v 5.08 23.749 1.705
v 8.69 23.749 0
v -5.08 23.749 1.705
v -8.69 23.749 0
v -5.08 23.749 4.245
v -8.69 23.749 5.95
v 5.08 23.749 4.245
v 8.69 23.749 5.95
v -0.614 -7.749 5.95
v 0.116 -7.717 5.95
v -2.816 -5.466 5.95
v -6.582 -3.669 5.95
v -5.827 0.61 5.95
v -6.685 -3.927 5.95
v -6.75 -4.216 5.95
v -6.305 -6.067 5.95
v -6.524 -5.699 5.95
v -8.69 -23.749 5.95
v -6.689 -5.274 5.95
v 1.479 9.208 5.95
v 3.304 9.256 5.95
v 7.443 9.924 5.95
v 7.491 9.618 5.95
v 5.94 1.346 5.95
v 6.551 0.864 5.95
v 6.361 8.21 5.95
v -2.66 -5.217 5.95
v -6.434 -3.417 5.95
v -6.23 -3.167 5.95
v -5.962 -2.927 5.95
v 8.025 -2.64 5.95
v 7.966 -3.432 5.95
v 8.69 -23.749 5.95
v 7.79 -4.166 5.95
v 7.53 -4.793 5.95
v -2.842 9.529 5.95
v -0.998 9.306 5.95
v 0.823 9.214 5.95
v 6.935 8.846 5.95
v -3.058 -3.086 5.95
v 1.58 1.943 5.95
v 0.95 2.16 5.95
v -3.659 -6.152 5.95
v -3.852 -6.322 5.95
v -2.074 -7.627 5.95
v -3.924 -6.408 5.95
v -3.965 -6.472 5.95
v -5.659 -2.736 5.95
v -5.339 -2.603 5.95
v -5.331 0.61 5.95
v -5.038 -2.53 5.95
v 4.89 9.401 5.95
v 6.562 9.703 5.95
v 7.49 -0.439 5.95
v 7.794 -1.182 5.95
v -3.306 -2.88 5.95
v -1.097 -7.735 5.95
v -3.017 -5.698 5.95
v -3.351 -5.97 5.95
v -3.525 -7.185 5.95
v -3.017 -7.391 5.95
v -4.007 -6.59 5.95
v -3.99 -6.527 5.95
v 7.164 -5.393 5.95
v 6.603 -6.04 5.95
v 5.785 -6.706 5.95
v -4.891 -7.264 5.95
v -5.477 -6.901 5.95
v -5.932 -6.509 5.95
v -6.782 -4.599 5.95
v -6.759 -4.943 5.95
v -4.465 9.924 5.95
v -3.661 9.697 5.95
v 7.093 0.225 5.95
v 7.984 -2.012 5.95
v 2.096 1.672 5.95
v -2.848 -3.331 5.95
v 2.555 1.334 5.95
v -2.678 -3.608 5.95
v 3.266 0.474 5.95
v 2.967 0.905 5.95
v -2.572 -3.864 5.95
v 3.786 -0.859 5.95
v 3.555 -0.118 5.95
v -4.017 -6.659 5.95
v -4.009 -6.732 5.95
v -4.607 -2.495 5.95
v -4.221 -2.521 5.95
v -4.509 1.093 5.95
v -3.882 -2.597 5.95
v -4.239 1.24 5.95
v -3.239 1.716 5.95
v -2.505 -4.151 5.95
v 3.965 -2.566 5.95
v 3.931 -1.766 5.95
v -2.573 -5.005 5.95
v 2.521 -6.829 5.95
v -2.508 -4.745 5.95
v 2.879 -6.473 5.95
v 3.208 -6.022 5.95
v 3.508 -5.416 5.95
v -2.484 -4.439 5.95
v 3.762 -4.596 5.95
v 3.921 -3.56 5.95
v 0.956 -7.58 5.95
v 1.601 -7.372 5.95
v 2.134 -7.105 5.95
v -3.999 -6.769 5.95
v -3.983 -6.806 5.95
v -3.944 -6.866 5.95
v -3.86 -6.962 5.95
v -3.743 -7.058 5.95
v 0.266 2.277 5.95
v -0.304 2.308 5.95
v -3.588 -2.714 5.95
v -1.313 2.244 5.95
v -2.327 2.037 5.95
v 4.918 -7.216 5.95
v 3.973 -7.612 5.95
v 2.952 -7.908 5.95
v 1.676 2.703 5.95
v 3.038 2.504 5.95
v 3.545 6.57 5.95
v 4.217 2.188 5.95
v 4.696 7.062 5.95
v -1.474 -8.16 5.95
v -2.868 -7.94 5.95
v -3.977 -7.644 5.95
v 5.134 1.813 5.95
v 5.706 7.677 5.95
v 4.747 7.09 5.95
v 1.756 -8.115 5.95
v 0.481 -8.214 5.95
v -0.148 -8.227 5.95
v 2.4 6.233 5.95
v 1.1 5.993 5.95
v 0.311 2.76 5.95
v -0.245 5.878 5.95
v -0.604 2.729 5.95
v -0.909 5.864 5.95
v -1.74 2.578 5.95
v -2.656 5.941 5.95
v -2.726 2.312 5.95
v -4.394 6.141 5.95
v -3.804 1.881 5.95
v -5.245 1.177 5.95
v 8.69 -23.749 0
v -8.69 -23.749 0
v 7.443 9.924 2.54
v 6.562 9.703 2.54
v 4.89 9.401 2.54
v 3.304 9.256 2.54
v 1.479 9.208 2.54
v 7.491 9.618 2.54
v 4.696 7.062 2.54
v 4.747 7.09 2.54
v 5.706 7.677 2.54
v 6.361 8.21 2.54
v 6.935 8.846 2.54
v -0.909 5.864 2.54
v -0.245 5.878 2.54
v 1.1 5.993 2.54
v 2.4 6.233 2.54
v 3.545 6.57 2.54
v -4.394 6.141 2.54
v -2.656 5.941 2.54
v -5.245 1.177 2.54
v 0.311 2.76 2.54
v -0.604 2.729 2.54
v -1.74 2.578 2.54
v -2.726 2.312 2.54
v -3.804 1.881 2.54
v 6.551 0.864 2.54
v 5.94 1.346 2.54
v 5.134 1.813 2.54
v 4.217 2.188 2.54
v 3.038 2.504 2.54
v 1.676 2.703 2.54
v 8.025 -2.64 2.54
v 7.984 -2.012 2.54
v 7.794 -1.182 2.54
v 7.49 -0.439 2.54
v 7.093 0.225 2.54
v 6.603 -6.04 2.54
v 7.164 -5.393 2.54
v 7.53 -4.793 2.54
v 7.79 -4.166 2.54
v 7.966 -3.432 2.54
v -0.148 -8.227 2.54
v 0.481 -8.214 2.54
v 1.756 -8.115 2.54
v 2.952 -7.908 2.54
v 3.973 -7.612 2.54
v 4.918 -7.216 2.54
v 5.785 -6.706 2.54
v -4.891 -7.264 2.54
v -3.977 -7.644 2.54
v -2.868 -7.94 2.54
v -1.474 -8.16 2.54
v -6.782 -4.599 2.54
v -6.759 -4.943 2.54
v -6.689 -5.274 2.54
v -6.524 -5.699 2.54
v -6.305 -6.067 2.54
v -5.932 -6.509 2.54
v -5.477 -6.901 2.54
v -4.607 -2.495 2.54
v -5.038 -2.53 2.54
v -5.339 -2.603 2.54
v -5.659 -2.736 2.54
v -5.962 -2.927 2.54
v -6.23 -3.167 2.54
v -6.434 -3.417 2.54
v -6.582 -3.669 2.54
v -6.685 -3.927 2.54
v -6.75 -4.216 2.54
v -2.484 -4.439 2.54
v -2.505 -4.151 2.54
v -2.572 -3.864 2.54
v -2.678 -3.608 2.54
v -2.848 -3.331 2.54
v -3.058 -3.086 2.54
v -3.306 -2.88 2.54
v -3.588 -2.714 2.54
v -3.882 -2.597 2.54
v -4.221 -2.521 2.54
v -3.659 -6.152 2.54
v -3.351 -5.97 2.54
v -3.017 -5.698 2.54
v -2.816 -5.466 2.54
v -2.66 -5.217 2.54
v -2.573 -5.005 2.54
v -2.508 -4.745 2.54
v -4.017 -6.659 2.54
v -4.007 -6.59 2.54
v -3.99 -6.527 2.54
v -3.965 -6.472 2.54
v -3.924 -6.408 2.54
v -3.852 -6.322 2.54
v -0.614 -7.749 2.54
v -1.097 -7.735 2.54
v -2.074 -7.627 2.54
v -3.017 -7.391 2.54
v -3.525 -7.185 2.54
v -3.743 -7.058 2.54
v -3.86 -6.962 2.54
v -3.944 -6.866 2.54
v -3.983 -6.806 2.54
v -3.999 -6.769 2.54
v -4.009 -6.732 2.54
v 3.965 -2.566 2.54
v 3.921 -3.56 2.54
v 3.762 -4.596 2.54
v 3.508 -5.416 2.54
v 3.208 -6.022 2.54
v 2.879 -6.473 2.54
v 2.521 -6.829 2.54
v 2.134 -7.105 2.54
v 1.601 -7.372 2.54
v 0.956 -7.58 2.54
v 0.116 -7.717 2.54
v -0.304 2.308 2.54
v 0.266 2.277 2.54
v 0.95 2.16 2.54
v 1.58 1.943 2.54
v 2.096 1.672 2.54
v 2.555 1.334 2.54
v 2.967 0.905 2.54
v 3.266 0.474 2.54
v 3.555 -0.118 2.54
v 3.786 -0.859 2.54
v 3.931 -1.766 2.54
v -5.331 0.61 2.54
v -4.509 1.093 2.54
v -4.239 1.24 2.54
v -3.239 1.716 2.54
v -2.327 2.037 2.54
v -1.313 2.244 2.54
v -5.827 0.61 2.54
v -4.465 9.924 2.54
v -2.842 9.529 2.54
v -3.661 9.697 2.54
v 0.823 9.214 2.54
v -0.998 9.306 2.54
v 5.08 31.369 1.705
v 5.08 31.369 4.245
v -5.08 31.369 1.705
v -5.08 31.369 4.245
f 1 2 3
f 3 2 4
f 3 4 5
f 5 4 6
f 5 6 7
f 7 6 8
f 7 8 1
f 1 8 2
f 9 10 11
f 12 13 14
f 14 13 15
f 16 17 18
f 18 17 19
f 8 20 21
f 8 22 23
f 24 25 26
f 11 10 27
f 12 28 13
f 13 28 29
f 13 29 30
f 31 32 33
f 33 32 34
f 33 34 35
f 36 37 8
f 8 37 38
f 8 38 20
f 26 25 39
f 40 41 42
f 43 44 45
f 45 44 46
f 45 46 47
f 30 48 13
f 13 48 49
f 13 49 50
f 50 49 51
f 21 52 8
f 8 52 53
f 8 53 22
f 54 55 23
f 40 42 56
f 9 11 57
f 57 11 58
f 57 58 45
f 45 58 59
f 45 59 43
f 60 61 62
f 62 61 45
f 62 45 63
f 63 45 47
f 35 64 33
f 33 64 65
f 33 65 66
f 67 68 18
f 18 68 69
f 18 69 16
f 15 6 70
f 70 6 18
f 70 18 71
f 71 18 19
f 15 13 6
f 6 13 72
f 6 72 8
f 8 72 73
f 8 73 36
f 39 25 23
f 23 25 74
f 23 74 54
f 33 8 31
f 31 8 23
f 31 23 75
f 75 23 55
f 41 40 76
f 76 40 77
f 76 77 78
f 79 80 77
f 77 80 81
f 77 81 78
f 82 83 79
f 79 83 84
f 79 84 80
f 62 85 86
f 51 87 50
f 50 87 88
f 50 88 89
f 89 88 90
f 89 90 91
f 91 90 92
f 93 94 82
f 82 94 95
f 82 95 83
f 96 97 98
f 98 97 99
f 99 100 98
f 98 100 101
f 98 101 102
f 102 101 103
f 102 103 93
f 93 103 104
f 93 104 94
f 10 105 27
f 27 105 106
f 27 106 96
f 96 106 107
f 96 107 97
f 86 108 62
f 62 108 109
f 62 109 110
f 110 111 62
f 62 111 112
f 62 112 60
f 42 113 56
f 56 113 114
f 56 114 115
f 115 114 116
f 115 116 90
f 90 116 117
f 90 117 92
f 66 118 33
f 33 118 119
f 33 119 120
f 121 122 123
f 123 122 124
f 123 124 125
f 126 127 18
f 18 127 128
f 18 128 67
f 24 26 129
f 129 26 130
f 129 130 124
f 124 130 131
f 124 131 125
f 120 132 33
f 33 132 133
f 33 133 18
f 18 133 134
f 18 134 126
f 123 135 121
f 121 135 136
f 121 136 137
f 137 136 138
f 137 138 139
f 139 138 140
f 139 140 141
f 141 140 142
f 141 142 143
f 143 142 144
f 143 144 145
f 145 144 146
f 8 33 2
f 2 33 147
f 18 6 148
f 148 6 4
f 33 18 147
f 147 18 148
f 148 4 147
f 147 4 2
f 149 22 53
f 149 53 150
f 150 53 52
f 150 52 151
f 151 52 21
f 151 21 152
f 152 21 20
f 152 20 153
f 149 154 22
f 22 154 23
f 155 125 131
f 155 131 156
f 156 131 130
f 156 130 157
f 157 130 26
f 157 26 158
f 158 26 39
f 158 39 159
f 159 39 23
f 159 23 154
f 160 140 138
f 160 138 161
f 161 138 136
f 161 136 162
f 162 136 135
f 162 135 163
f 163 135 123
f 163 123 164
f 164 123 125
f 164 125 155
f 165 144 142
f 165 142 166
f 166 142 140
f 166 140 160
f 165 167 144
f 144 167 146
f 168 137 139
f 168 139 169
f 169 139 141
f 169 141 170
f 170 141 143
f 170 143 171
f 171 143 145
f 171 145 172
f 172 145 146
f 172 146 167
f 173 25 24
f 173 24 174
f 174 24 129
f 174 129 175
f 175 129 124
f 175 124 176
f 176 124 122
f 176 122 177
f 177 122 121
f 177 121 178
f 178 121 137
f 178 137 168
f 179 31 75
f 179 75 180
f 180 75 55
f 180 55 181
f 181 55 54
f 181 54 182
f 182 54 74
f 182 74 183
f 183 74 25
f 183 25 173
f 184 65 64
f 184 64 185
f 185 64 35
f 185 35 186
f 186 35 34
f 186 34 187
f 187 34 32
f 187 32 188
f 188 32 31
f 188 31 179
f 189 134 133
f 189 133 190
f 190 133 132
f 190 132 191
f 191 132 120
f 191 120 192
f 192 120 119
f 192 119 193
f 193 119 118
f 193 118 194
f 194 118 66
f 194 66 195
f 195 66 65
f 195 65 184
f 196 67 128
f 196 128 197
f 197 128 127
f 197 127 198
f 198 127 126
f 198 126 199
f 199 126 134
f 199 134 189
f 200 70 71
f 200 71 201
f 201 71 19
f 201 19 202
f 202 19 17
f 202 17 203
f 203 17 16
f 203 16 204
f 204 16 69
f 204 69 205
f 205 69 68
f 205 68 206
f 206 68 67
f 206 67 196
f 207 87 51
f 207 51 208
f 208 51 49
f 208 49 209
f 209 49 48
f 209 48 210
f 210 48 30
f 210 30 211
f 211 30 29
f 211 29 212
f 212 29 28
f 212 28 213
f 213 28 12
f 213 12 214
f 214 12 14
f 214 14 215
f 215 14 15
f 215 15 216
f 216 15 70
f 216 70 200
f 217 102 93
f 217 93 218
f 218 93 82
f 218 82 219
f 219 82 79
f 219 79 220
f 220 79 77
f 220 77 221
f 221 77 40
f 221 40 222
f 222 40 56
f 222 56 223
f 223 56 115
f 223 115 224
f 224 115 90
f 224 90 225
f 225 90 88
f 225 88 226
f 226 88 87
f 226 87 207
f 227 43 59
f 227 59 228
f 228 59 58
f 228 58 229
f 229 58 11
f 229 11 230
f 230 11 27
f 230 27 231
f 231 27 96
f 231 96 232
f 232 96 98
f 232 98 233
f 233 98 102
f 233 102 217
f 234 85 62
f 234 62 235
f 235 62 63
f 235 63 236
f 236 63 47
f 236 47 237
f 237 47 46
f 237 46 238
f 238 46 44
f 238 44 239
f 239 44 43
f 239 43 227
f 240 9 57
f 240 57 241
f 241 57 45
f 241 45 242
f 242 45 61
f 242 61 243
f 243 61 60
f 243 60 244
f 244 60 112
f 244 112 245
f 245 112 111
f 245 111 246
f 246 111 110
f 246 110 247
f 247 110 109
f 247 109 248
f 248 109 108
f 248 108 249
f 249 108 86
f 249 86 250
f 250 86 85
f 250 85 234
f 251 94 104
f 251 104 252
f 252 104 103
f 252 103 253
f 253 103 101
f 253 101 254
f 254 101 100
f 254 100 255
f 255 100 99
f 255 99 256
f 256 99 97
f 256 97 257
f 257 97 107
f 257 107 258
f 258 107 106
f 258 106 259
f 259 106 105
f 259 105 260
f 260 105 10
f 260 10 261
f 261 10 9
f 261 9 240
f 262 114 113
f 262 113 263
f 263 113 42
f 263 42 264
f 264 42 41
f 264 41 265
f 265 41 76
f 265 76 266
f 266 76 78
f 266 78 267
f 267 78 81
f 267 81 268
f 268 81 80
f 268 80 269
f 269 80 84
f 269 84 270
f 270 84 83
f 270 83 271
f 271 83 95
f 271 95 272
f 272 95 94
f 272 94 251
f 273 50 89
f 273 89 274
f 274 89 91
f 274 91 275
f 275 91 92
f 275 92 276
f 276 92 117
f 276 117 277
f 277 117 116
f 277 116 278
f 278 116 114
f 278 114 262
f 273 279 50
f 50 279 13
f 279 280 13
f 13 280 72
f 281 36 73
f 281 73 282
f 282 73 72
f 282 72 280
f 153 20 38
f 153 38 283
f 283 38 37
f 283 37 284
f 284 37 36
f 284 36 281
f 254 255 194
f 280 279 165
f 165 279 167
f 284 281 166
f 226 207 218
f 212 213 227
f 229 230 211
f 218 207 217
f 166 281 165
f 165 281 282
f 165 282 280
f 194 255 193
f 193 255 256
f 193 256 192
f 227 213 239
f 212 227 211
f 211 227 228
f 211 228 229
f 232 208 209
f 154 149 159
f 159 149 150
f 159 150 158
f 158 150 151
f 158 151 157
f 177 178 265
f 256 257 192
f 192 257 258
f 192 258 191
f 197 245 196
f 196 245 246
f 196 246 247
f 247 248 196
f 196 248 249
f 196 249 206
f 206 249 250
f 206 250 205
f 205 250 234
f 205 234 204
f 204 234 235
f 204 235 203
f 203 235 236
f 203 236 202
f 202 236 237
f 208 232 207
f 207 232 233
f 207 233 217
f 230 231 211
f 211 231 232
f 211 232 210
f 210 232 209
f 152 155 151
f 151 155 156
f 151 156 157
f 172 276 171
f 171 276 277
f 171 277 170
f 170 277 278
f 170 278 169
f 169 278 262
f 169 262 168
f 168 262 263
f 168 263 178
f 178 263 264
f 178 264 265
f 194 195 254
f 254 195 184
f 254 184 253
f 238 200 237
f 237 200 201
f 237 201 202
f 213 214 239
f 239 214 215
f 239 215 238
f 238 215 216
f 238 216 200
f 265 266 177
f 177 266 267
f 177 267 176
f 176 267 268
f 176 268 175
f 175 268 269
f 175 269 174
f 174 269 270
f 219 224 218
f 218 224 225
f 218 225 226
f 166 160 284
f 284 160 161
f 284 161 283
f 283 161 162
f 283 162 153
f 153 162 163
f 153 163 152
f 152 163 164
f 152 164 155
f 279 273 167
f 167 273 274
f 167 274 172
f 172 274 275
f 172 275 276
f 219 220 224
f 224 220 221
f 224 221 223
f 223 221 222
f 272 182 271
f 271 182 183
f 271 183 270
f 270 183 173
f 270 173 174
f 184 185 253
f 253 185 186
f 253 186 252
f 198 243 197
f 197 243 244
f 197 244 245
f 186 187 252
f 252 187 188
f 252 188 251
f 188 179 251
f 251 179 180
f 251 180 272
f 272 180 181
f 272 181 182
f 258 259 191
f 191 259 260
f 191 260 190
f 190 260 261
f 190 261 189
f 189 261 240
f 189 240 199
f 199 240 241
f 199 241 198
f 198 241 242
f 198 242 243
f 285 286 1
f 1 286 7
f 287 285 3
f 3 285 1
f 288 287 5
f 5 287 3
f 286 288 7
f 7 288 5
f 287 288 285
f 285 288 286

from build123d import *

# Parameters (mm, degrees)
SKETCH1_W           = 17.38
SKETCH1_H           = 47.498
BOSS_EXTRUDE1_DEPTH = 5.95
CUT_EXTRUDE1_DEPTH  = 3.41
SKETCH3_W           = 10.16
SKETCH3_H           = 2.54
BOSS_EXTRUDE2_DEPTH = 7.62


with BuildPart() as part:
    # Sketch1 → Boss-Extrude1 (new body)
    with BuildSketch(Plane.XY):
        Rectangle(SKETCH1_W, SKETCH1_H)
    extrude(amount=BOSS_EXTRUDE1_DEPTH)

    # Sketch2 → Cut-Extrude1 (cut)
    with BuildSketch(Plane.XY.offset(5.95)):
        with BuildLine():
            Line((7.442756003, 9.924455156), (7.491268126, 9.618455606))
            add(Edge.make_bspline(
                [(7.491268126, 9.618455606), (7.388196446, 9.466942554), (7.190794115, 9.176765567), (6.883635039, 8.77416687), (6.580334345, 8.424256906), (6.271574884, 8.117843462), (5.940370317, 7.841299159), (5.568441188, 7.578876003), (5.153754118, 7.310436522), (4.852926765, 7.147246701), (4.696223459, 7.062239856)],
                knots=[0, 0, 0, 0, 1.145964768, 2.194745584, 3.165202406, 4.03990847, 4.912501504, 5.860303535, 6.885415487, 8, 8, 8, 8], degree=3))
            add(Edge.make_bspline(
                [(4.696223459, 7.062239856), (4.499744398, 6.967232704), (4.102902364, 6.775340341), (3.474153814, 6.538191996), (2.813554004, 6.333237061), (2.120776353, 6.162580703), (1.399657714, 6.026815112), (0.651510405, 5.937381635), (-0.120298453, 5.873381172), (-0.643704604, 5.867395245), (-0.908792682, 5.86436357)],
                knots=[0, 0, 0, 0, 0.905325806, 1.828547692, 2.785348579, 3.774441141, 4.787925238, 5.828395329, 6.90015334, 8, 8, 8, 8], degree=3))
            add(Edge.make_bspline(
                [(-0.908792682, 5.86436357), (-1.183775776, 5.868319524), (-1.744155055, 5.876381236), (-2.60042752, 5.931891418), (-3.488027549, 6.016072254), (-4.088461448, 6.098524731), (-4.394202187, 6.140509505)],
                knots=[0, 0, 0, 0, 0.943008224, 1.921726389, 2.941743778, 4, 4, 4, 4], degree=3))
            Line((-4.394202187, 6.140509505), (-5.245030203, 1.177346077))
            add(Edge.make_bspline(
                [(-5.245030203, 1.177346077), (-5.099692133, 1.252367706), (-4.817426132, 1.398069757), (-4.4023402, 1.604243124), (-4.006704111, 1.790847965), (-3.632644493, 1.958676402), (-3.278177346, 2.103991861), (-2.947838119, 2.237174313), (-2.634386649, 2.343936776), (-2.239987634, 2.466535927), (-1.735943769, 2.588441657), (-1.096664304, 2.685171937), (-0.408909829, 2.752005624), (0.066252368, 2.757006699), (0.311473815, 2.759587651)],
                knots=[0, 0, 0, 0, 1.006594111, 1.95494061, 2.852161939, 3.698632082, 4.47771994, 5.20984462, 5.890144692, 6.514895121, 7.751501423, 9.076797217, 10.491395109, 12, 12, 12, 12], degree=3))
            add(Edge.make_bspline(
                [(0.311473815, 2.759587651), (0.535398839, 2.755977577), (0.974846729, 2.748892886), (1.620475428, 2.715284292), (2.237431508, 2.640791764), (2.828133868, 2.549610207), (3.391581711, 2.431161677), (3.926410539, 2.283829718), (4.436803767, 2.118613947), (4.916396667, 1.918999578), (5.371826845, 1.701125088), (5.793685602, 1.447774573), (6.191678015, 1.175540089), (6.432055206, 0.966979497), (6.550879266, 0.863883124)],
                knots=[0, 0, 0, 0, 1.209491551, 2.373600323, 3.489351857, 4.563959151, 5.600865615, 6.596587735, 7.558914106, 8.495791867, 9.400120309, 10.282627716, 11.15106276, 12, 12, 12, 12], degree=3))
            add(Edge.make_bspline(
                [(6.550879266, 0.863883124), (6.663701743, 0.742591932), (6.887885733, 0.501580172), (7.185905623, 0.107991252), (7.434808919, -0.317506707), (7.64735089, -0.762667624), (7.815411217, -1.223810977), (7.933572717, -1.692856119), (8.013981471, -2.164737406), (8.021265636, -2.481883253), (8.024901487, -2.64018489)],
                knots=[0, 0, 0, 0, 1.019710416, 2.026216391, 3.032489163, 4.05009723, 5.060530396, 6.048889042, 7.026113504, 8, 8, 8, 8], degree=3))
            add(Edge.make_bspline(
                [(8.024901487, -2.64018489), (8.020801767, -2.804619839), (8.012753023, -3.127445431), (7.943075826, -3.602494497), (7.831393213, -4.057156952), (7.67809346, -4.496086456), (7.475268481, -4.912593105), (7.231250027, -5.312871427), (6.938962553, -5.690361738), (6.716016962, -5.922311768), (6.603123092, -6.039765252)],
                knots=[0, 0, 0, 0, 1.041176999, 2.04408236, 3.034027167, 4.003470328, 4.983202096, 5.962965549, 6.968498547, 8, 8, 8, 8], degree=3))
            add(Edge.make_bspline(
                [(6.603123092, -6.039765252), (6.405699461, -6.215392151), (6.007486189, -6.569640332), (5.32662517, -7.011218259), (4.58377472, -7.392320821), (3.766799238, -7.694680543), (2.886211455, -7.939522552), (1.934509396, -8.101388624), (0.917305834, -8.210370201), (0.214760817, -8.221040232), (-0.14752551, -8.226542522)],
                knots=[0, 0, 0, 0, 0.871069273, 1.756990004, 2.669566264, 3.621983655, 4.627000268, 5.682036848, 6.804679652, 8, 8, 8, 8], degree=3))
            add(Edge.make_bspline(
                [(-0.14752551, -8.226542522), (-0.370250634, -8.222244049), (-0.816200421, -8.213637462), (-1.482946375, -8.166140654), (-2.145331954, -8.078795756), (-2.791605268, -7.961417463), (-3.403604951, -7.819259345), (-3.958712163, -7.654815969), (-4.453900955, -7.481257394), (-4.749947343, -7.333786701), (-4.890518529, -7.263763451)],
                knots=[0, 0, 0, 0, 1.095684565, 2.19382659, 3.285951729, 4.380508114, 5.423877159, 6.374492448, 7.228163105, 8, 8, 8, 8], degree=3))
            add(Edge.make_bspline(
                [(-4.890518529, -7.263763451), (-5.035629193, -7.182452627), (-5.316509414, -7.025065144), (-5.694035748, -6.740579878), (-6.019519859, -6.431088542), (-6.295032988, -6.097913353), (-6.51309252, -5.744206053), (-6.667017422, -5.373777783), (-6.766809982, -4.991418752), (-6.777243361, -4.730546951), (-6.782491355, -4.599328348)],
                knots=[0, 0, 0, 0, 1.160681474, 2.246647206, 3.291271732, 4.291304077, 5.25829909, 6.181203858, 7.085144929, 8, 8, 8, 8], degree=3))
            add(Edge.make_bspline(
                [(-6.782491355, -4.599328348), (-6.774342349, -4.453081073), (-6.75846843, -4.168197538), (-6.64211866, -3.759871717), (-6.436538728, -3.397764213), (-6.163895247, -3.081023671), (-5.833430689, -2.820020292), (-5.457625005, -2.631179544), (-5.044250192, -2.513816473), (-4.755734581, -2.501171297), (-4.606909191, -2.494648518)],
                knots=[0, 0, 0, 0, 1.038363749, 2.022688871, 2.983899271, 3.973918752, 4.974410771, 5.954403577, 6.944817285, 8, 8, 8, 8], degree=3))
            add(Edge.make_bspline(
                [(-4.606909191, -2.494648518), (-4.507163048, -2.496981892), (-4.312628946, -2.501532653), (-4.031008634, -2.552467514), (-3.765664982, -2.629947355), (-3.520661715, -2.74257489), (-3.294573312, -2.881087206), (-3.092603306, -3.045610231), (-2.914473539, -3.235149346), (-2.763280777, -3.446234353), (-2.638351732, -3.674894842), (-2.548205754, -3.918478563), (-2.494918861, -4.17535582), (-2.487384773, -4.350303052), (-2.483570852, -4.438865169)],
                knots=[0, 0, 0, 0, 1.117637543, 2.179719547, 3.199437565, 4.211008827, 5.194574363, 6.166491412, 7.123978993, 8.103677089, 9.071378429, 10.038174012, 11.006880757, 12, 12, 12, 12], degree=3))
            add(Edge.make_bspline(
                [(-2.483570852, -4.438865169), (-2.486995627, -4.527517151), (-2.493771023, -4.70290165), (-2.552315647, -4.956438553), (-2.640742431, -5.197727564), (-2.776563998, -5.418114374), (-2.939315934, -5.629950077), (-3.146823442, -5.820016584), (-3.384493352, -6.001663071), (-3.565500253, -6.100586139), (-3.659056927, -6.151716307)],
                knots=[0, 0, 0, 0, 0.968529955, 1.916089601, 2.833465673, 3.766948701, 4.736052034, 5.746774587, 6.835379905, 8, 8, 8, 8], degree=3))
            add(Edge.make_bspline(
                [(-3.659056927, -6.151716307), (-3.712593015, -6.195118685), (-3.810012219, -6.274097656), (-3.926920197, -6.402182193), (-4.001195782, -6.530313333), (-4.012238567, -6.618709273), (-4.017300302, -6.659227755)],
                knots=[0, 0, 0, 0, 1.288779764, 2.34518258, 3.241473203, 4, 4, 4, 4], degree=3))
            add(Edge.make_bspline(
                [(-4.017300302, -6.659227755), (-4.014862106, -6.693558852), (-4.009786068, -6.765032163), (-3.94889938, -6.86383505), (-3.865505152, -6.962509198), (-3.747621078, -7.0590999), (-3.59734133, -7.150700716), (-3.414668231, -7.240893328), (-3.200044936, -7.328812331), (-2.867030136, -7.443506304), (-2.414722193, -7.569316413), (-1.839757858, -7.670449008), (-1.236208093, -7.736106558), (-0.824385614, -7.744563892), (-0.613988238, -7.748884688)],
                knots=[0, 0, 0, 0, 0.326627239, 0.679999541, 1.087570525, 1.571741335, 2.136209263, 2.778409567, 3.529552134, 4.365937735, 6.165921372, 8.039005593, 9.976354196, 12, 12, 12, 12], degree=3))
            add(Edge.make_bspline(
                [(-0.613988238, -7.748884688), (-0.42349165, -7.745898893), (-0.053933814, -7.740106537), (0.480092866, -7.67864014), (0.976569924, -7.583764599), (1.432246926, -7.446925264), (1.848139012, -7.268810492), (2.227817186, -7.057803498), (2.567389934, -6.802022096), (2.864540024, -6.502050413), (3.12901858, -6.16407249), (3.352639163, -5.778648178), (3.54280588, -5.350498704), (3.699090595, -4.879386484), (3.817527637, -4.363147203), (3.901267526, -3.80421506), (3.954403228, -3.199710621), (3.96125619, -2.7821062), (3.964809902, -2.565550853)],
                knots=[0, 0, 0, 0, 1.145984371, 2.223176321, 3.230327741, 4.184709763, 5.080198491, 5.948392179, 6.792829292, 7.629197606, 8.482744051, 9.368637587, 10.303560962, 11.297831961, 12.351033038, 13.487071465, 14.696881343, 16, 16, 16, 16], degree=3))
            add(Edge.make_bspline(
                [(3.964809902, -2.565550853), (3.959937282, -2.315186172), (3.95054273, -1.832475769), (3.854905269, -1.138827256), (3.705638698, -0.502736617), (3.487857452, 0.072698671), (3.212336232, 0.590456281), (2.869977731, 1.042931556), (2.464404193, 1.430095093), (1.998885296, 1.746615006), (1.483054716, 1.997270407), (0.925314836, 2.181919986), (0.322799369, 2.28608044), (-0.091155302, 2.300584907), (-0.304256986, 2.308051731)],
                knots=[0, 0, 0, 0, 1.224131662, 2.360161531, 3.418424534, 4.414143726, 5.361687872, 6.278160415, 7.177748908, 8.092603741, 9.020660508, 9.975155306, 10.957620613, 12, 12, 12, 12], degree=3))
            add(Edge.make_bspline(
                [(-0.304256986, 2.308051731), (-0.585965965, 2.299911613), (-1.136361477, 2.284007669), (-1.811836605, 2.167686698), (-2.337007345, 2.039517007), (-2.732310337, 1.908362031), (-3.140497373, 1.762367668), (-3.553566201, 1.578877843), (-3.981742925, 1.379844177), (-4.417153582, 1.143324516), (-4.874022359, 0.893907905), (-5.176248262, 0.706169561), (-5.330859345, 0.6101274)],
                knots=[0, 0, 0, 0, 1.569199768, 3.065860781, 3.809147302, 4.580990623, 5.38603441, 6.224540817, 7.099163695, 8.017256459, 8.985678849, 10, 10, 10, 10], degree=3))
            Line((-5.330859345, 0.6101274), (-5.827175687, 0.6101274))
            Line((-5.827175687, 0.6101274), (-4.465104521, 9.924455156))
            add(Edge.make_bspline(
                [(-4.465104521, 9.924455156), (-4.315984039, 9.880431687), (-4.028541468, 9.795572662), (-3.610488685, 9.680706455), (-3.217546123, 9.59555299), (-2.963853205, 9.550545578), (-2.841814227, 9.528894762)],
                knots=[0, 0, 0, 0, 1.115879267, 2.150953381, 3.110516124, 4, 4, 4, 4], degree=3))
            add(Edge.make_bspline(
                [(-2.841814227, 9.528894762), (-2.510146411, 9.477884697), (-1.830201619, 9.373310099), (-0.775608412, 9.285032005), (0.332929285, 9.21530606), (1.09127166, 9.210452917), (1.479496486, 9.207968405)],
                knots=[0, 0, 0, 0, 0.928037139, 1.90254824, 2.926233227, 4, 4, 4, 4], degree=3))
            add(Edge.make_bspline(
                [(1.479496486, 9.207968405), (1.857705195, 9.211620808), (2.587136827, 9.218665008), (3.650367069, 9.270738299), (4.655930506, 9.361259539), (5.618408289, 9.504787441), (6.545008139, 9.689890411), (7.146144347, 9.846956071), (7.442756003, 9.924455156)],
                knots=[0, 0, 0, 0, 1.129737635, 2.178866713, 3.179008279, 4.144335706, 5.084381125, 6, 6, 6, 6], degree=3))
        make_face()
    extrude(amount=-CUT_EXTRUDE1_DEPTH, mode=Mode.SUBTRACT)

    # Sketch3 → Boss-Extrude2 (add)
    with BuildSketch(Plane(origin=(0, 23.749, 0), x_dir=(1, 0, 0), z_dir=(0, 1, 0))):
        with Locations((0, -2.975)):
            Rectangle(SKETCH3_W, SKETCH3_H)
    extrude(amount=BOSS_EXTRUDE2_DEPTH)


solid = part.part
